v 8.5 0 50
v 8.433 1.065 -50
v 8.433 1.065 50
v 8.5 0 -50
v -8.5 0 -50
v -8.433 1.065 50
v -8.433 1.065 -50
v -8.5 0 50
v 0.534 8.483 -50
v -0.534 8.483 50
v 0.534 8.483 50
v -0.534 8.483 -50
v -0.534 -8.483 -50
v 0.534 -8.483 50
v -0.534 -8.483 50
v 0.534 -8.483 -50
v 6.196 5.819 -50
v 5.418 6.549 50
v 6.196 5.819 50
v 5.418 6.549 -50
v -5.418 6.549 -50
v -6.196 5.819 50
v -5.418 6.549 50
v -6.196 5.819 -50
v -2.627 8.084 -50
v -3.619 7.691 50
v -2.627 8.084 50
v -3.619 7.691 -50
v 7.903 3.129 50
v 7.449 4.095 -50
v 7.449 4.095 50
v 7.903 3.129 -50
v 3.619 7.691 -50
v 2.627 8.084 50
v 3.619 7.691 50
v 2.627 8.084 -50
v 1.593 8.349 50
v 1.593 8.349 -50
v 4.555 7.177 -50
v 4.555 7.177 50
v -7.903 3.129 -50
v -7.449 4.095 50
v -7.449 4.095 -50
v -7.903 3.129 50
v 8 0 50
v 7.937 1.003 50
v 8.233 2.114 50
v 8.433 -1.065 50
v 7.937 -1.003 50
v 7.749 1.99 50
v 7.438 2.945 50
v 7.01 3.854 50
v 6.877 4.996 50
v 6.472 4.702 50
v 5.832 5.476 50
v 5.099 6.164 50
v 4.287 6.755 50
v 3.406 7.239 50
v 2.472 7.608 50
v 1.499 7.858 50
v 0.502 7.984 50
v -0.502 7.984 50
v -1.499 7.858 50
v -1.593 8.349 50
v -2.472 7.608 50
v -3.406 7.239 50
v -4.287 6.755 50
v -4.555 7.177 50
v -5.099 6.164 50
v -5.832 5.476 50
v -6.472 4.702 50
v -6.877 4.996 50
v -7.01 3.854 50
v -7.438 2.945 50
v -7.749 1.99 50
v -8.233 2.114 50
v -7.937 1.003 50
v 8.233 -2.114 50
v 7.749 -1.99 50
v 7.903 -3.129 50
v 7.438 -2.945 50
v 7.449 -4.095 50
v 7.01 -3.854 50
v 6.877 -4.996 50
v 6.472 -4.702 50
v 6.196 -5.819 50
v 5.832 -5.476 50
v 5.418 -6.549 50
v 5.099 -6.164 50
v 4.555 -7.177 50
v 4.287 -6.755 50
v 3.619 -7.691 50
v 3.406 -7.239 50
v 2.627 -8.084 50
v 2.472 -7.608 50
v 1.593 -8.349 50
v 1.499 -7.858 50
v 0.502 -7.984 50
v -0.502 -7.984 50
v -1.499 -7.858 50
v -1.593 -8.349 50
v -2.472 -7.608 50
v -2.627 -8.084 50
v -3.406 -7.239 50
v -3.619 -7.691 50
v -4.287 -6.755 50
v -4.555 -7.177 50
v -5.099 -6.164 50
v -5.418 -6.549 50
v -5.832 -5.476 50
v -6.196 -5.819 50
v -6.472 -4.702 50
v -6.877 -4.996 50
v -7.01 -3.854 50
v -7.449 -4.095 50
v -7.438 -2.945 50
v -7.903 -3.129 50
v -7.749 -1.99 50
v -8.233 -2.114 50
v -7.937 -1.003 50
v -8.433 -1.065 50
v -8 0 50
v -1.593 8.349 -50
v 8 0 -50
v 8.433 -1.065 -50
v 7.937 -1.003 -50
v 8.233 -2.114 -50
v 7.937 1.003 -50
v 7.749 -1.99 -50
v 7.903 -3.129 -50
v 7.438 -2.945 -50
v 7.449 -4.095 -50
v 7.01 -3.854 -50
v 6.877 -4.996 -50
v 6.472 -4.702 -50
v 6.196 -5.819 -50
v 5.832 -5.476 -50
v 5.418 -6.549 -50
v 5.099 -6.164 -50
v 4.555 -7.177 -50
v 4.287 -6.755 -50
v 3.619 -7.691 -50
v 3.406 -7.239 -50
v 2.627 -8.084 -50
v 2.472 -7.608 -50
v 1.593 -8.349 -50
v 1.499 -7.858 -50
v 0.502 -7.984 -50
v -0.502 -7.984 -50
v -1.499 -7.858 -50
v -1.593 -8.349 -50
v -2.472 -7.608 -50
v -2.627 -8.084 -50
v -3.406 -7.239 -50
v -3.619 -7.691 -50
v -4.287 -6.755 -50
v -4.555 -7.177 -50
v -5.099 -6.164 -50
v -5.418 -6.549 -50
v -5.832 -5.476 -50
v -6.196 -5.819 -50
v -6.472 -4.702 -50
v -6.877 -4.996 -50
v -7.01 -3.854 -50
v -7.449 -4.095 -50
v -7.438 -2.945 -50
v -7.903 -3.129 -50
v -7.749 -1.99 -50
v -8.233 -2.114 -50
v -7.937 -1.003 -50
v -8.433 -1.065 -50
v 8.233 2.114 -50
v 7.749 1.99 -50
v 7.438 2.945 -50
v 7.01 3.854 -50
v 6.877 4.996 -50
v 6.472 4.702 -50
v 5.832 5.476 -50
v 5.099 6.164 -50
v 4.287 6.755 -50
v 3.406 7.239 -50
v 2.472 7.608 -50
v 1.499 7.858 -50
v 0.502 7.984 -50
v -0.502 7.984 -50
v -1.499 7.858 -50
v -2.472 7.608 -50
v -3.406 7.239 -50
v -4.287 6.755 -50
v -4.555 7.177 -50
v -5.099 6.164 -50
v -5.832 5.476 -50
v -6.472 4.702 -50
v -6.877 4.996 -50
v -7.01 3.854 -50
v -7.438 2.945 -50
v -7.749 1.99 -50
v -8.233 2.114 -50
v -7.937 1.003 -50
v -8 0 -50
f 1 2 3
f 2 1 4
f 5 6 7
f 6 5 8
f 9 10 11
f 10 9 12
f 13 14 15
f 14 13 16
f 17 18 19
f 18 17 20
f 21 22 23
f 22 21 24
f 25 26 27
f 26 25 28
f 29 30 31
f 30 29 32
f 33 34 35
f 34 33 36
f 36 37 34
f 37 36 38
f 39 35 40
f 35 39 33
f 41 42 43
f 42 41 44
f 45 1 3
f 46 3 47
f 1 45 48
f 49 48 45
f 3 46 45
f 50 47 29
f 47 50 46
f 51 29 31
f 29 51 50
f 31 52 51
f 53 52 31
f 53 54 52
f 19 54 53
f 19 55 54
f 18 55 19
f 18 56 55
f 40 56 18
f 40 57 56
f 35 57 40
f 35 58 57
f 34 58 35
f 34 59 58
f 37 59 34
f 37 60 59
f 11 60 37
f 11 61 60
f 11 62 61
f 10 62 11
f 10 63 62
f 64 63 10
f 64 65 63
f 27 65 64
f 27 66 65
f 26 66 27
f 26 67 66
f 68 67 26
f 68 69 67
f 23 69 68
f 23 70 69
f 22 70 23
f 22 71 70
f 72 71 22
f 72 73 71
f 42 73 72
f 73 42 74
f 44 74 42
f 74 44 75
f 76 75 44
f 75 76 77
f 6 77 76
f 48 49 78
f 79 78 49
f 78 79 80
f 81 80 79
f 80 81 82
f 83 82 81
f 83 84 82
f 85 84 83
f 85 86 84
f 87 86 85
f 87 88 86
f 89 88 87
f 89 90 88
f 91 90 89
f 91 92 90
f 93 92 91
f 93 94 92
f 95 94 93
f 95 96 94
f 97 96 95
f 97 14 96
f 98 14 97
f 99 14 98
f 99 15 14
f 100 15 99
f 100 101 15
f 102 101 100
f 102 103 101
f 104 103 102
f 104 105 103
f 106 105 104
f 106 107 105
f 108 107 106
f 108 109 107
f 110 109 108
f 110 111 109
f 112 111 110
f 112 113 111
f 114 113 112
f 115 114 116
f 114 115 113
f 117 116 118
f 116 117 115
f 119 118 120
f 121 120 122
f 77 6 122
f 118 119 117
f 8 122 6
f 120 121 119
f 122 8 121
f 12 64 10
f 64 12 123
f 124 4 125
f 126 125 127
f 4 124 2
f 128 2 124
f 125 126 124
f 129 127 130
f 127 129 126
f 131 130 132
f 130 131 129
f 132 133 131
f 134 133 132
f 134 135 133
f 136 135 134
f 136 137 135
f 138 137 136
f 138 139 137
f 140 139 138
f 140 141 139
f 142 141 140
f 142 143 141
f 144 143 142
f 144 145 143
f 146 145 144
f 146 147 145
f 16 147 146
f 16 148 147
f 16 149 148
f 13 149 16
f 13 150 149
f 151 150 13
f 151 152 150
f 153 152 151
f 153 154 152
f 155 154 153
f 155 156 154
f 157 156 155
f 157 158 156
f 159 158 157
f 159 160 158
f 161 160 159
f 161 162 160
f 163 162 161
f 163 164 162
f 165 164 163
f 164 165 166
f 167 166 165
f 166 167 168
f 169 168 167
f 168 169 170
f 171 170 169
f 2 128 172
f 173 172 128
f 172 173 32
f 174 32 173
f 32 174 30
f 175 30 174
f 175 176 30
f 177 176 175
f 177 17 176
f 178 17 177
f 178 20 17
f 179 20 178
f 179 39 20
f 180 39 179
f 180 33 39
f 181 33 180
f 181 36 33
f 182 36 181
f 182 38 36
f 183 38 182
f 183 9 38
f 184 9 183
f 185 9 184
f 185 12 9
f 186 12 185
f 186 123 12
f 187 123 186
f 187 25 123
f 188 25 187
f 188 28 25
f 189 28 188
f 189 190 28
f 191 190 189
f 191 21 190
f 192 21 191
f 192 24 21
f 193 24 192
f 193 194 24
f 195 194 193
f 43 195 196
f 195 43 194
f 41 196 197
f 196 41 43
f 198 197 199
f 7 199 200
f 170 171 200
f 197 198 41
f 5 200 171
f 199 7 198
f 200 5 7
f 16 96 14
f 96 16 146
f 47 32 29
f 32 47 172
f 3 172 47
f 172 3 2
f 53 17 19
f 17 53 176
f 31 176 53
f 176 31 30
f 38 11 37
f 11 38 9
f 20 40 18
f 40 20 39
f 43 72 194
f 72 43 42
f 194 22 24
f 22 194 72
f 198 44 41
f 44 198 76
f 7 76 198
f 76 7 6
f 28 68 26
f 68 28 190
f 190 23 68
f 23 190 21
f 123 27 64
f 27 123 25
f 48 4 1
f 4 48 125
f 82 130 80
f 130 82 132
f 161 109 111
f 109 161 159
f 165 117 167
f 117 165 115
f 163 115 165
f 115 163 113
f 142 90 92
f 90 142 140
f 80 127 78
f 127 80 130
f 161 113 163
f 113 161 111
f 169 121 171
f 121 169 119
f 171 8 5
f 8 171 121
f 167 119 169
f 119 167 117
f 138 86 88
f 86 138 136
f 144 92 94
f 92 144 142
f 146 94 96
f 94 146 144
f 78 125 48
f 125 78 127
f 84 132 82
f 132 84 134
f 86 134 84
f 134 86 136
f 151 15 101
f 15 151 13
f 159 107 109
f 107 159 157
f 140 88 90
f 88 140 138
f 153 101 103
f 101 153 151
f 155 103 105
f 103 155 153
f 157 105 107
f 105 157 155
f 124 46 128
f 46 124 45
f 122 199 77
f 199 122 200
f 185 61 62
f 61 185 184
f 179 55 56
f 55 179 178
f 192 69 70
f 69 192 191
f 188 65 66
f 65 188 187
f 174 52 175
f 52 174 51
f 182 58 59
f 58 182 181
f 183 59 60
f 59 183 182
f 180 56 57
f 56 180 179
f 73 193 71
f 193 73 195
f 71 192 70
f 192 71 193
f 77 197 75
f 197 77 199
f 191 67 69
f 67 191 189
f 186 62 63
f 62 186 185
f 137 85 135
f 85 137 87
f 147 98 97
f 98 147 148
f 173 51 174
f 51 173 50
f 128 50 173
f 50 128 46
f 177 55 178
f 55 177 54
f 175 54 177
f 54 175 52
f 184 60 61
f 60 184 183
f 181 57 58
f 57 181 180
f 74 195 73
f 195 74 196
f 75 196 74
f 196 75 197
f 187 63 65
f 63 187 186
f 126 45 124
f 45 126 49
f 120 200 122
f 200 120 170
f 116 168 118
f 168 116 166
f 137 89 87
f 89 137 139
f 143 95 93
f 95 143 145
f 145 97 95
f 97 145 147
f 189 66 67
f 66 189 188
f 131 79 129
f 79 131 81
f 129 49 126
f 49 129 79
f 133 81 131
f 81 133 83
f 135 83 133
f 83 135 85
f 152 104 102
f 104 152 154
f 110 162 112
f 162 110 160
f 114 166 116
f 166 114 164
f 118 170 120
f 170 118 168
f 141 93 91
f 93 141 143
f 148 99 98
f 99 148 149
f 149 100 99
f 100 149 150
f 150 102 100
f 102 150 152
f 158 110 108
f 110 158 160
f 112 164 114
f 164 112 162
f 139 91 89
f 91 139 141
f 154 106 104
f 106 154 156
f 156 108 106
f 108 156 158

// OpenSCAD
$fn = 50;


difference() {
	union() {
		translate(v = [0, 0, -50.0000000000]) {
			cylinder(h = 100, r = 8.5000000000);
		}
	}
	union() {
		translate(v = [0, 0, -100.0000000000]) {
			cylinder(h = 200, r = 8);
		}
	}
}
